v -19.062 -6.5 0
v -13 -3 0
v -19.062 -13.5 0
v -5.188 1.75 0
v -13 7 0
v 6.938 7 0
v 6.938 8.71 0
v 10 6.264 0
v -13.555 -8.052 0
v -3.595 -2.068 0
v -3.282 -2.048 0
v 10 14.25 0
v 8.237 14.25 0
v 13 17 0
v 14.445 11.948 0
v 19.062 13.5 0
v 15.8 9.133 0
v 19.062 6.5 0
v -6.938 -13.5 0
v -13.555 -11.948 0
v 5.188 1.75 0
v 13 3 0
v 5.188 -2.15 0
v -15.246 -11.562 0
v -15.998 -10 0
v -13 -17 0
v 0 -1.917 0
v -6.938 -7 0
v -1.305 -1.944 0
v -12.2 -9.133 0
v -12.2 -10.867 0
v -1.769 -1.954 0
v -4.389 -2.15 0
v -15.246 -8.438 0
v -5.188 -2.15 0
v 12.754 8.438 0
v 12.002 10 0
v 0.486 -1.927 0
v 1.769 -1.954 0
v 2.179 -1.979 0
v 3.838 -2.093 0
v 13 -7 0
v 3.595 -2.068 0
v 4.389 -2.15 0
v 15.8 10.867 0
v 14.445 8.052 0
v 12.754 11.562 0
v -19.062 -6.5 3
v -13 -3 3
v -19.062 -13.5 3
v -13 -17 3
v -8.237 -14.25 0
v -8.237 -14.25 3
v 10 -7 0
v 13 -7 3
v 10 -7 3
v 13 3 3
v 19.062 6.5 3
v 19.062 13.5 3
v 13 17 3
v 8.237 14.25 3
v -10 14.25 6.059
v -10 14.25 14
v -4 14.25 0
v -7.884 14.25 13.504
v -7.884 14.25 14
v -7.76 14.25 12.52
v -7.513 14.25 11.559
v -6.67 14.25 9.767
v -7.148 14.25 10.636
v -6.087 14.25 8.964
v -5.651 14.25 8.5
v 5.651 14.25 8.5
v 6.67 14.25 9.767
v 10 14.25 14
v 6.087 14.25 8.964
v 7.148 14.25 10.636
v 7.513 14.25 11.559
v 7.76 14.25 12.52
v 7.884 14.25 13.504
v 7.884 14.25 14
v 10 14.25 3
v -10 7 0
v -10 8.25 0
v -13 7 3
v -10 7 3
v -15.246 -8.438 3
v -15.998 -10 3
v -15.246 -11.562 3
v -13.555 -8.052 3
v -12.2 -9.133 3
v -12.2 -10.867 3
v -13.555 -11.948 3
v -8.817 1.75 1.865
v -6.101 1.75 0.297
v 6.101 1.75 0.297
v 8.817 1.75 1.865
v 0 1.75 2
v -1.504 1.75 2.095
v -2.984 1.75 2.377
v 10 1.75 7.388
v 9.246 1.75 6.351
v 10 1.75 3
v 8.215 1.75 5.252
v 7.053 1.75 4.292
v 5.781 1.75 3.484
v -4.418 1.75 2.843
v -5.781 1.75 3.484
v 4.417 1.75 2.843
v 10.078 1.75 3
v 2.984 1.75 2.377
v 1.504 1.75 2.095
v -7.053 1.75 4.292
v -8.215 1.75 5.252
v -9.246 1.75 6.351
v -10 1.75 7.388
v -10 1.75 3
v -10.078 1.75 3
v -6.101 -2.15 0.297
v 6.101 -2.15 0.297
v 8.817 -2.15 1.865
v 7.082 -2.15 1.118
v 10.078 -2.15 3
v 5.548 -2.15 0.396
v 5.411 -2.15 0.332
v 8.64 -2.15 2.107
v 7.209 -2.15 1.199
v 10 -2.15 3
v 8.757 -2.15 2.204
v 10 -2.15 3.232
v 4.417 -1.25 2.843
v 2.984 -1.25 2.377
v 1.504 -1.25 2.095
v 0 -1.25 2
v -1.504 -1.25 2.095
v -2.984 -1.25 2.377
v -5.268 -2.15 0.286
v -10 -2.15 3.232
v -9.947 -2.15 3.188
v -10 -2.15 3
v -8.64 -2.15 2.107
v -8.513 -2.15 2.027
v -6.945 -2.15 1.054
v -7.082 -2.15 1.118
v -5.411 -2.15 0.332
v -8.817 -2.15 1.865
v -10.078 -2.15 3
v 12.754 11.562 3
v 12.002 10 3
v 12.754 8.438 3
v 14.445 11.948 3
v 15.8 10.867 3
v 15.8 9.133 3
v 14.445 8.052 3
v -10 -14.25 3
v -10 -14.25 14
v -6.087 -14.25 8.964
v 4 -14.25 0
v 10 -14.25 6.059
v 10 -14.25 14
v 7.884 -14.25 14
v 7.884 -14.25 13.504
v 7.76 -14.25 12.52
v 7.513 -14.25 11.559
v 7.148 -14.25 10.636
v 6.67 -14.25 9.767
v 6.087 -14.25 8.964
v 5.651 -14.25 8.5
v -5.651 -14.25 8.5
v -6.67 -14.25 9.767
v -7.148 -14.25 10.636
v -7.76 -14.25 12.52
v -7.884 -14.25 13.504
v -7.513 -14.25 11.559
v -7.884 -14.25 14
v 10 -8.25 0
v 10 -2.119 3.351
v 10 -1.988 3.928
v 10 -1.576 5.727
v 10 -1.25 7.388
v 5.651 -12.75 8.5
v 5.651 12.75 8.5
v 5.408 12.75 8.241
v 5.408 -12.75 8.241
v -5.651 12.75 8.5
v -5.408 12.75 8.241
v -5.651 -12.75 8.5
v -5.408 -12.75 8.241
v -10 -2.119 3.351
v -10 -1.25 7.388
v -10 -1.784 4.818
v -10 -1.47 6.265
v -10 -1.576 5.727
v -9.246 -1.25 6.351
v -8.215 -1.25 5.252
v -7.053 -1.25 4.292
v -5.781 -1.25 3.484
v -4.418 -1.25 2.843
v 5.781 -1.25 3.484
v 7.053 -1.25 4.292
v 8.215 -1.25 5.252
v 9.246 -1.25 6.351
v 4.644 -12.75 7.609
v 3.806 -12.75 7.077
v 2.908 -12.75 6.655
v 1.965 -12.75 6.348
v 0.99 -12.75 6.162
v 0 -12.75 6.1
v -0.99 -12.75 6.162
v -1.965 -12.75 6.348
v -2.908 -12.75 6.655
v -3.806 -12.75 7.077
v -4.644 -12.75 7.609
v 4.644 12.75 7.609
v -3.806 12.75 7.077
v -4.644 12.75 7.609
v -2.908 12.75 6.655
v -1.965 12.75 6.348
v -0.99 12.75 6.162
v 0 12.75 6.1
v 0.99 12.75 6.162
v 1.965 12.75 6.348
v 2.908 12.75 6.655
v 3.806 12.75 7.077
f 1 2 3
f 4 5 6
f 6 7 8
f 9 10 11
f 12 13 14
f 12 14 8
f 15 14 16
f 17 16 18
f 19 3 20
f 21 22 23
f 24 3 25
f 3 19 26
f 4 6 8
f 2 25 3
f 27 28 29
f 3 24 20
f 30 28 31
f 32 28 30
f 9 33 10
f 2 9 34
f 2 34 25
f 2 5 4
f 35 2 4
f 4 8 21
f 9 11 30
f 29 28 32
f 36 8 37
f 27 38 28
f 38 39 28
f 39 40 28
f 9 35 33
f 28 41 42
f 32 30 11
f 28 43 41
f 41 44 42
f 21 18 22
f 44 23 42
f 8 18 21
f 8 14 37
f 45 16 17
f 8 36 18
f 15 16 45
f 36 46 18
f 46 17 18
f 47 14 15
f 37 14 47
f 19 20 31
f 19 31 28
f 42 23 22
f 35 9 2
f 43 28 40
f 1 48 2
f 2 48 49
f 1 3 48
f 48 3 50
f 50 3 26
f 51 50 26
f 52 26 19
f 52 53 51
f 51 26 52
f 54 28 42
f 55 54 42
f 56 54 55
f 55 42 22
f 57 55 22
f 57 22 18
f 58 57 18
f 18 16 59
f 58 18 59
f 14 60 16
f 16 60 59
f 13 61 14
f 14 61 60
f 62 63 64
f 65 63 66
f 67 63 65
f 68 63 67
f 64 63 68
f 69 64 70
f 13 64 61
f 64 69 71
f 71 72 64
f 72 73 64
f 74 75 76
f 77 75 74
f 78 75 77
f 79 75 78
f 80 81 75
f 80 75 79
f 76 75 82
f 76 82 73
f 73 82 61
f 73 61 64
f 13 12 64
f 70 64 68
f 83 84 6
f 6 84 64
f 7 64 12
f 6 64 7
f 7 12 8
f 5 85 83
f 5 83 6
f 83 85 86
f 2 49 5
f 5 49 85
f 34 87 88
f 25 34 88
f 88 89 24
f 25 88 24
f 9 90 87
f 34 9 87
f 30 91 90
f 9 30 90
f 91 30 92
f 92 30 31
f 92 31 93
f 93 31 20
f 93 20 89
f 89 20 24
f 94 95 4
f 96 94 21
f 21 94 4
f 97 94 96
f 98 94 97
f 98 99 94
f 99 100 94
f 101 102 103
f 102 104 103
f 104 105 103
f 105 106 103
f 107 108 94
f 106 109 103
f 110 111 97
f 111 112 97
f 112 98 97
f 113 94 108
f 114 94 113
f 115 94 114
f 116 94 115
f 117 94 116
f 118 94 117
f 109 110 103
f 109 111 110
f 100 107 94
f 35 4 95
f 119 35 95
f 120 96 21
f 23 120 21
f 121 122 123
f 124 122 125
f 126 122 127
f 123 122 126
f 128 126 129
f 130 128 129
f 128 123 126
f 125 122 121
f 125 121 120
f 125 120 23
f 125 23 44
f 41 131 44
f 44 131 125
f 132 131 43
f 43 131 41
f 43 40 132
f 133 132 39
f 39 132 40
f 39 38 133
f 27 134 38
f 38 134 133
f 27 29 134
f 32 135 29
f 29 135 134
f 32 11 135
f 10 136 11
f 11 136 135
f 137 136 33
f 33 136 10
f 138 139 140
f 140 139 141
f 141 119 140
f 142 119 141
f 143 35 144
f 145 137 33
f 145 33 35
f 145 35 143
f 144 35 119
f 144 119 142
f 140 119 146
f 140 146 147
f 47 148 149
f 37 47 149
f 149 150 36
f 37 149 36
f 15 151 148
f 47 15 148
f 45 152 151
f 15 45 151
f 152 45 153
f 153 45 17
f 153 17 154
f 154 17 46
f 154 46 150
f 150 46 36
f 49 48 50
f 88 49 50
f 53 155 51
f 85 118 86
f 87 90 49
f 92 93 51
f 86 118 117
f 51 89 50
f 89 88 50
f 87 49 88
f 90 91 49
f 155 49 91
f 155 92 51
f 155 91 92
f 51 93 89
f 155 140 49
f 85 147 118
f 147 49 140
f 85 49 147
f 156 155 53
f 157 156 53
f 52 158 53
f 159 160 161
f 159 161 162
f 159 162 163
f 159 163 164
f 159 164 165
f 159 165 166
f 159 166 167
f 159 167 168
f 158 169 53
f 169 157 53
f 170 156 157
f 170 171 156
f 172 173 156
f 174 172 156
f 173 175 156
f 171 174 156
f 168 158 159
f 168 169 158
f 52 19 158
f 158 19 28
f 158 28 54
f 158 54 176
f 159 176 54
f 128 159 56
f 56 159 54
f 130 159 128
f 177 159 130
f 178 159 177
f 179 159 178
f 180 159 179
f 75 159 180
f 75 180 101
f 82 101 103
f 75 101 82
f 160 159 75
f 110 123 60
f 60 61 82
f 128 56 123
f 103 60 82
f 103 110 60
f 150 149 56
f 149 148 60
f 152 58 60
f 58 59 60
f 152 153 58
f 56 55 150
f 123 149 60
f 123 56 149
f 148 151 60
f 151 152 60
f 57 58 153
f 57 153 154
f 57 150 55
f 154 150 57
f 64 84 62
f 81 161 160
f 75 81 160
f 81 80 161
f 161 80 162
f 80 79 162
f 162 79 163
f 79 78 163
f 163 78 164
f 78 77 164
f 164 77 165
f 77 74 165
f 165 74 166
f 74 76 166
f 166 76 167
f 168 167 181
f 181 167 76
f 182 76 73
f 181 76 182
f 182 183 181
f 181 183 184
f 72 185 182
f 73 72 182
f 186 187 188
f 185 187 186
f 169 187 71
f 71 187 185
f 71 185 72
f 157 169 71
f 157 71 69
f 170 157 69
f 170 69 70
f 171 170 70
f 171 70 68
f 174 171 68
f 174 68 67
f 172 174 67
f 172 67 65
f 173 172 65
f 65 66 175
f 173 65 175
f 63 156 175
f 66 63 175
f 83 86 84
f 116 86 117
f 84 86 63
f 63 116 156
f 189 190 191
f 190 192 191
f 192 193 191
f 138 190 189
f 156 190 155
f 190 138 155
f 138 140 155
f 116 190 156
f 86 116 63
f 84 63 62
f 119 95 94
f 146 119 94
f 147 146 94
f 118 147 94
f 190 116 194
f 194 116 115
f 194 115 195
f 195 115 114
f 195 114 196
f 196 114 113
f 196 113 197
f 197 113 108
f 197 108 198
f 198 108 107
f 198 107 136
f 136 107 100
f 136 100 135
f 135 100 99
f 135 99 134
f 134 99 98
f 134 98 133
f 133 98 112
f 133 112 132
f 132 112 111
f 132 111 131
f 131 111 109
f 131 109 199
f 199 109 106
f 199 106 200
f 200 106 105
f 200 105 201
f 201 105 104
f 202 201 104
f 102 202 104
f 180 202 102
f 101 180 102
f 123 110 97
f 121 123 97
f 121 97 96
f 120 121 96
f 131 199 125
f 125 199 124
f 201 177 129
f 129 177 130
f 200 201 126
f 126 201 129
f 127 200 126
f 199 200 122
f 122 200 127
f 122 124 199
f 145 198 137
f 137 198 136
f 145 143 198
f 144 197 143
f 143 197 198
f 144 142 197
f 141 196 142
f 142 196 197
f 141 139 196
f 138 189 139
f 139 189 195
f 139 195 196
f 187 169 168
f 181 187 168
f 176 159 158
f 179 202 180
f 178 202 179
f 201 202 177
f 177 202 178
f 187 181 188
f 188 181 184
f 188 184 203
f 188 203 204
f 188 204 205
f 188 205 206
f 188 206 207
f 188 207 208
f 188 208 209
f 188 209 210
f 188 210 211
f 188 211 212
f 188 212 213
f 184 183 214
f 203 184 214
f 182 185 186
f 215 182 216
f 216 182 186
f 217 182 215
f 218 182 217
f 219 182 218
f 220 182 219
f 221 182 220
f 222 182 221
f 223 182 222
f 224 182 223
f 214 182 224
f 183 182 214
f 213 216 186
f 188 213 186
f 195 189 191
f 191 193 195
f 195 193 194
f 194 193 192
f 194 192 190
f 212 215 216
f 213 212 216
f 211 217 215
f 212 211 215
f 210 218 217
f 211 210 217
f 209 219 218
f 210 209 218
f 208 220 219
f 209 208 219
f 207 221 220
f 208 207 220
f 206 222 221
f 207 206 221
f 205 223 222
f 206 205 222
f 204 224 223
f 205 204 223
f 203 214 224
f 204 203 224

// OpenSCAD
// file: functions.scad
// Mendel Dynamics
// Functions used in many files
// GNU GPL v3
// Emili Sapena 
// emili@bcndynamics.com
// bcndynamics.com
// http://wiki-es.bcndynamics.com/Mendel_Dynamics
// http://github.com/djemili/MendelDynamics
// http://www.reprap.org/wiki/Mendel_Dynamics

// Some functions from:
// Prusa Mendel
// GNU GPL v3
// Josef Průša
// josefprusa@me.com
// prusadjs.cz
// http://www.reprap.org/wiki/Prusa_Mendel
// http://github.com/prusajr/PrusaMendel


module nut(d,h,horizontal=true){
cornerdiameter =  (d / 2) / cos (180 / 6);
cylinder(h = h, r = cornerdiameter, $fn = 6);
if(horizontal){
for(i = [1:6]){
	rotate([0,0,60*i]) translate([-cornerdiameter-0.2,0,0]) rotate([0,0,-45]) cube(size = [2,2,h]);
}}
}

// Based on nophead research
module polyhole(d,h) {
    n = max(round(2 * d),3);
    rotate([0,0,180])
        cylinder(h = h, r = (d / 2) / cos (180 / n), $fn = n);
}




module roundcorner(diameter){
	difference(){
		cube(size = [diameter,diameter,99], center = false);
		translate(v = [diameter, diameter, 0]) cylinder(h = 100, r=diameter, center=true);
	}
}


module roundcorner(diameter){
	difference(){
		cube(size = [diameter,diameter,99], center = false);
		translate(v = [diameter, diameter, 0]) cylinder(h = 100, r=diameter, center=true, $fn=10);//no augmentar
	}
}

// This module creates the shape that needs to be substracted from a cube to make its corners rounded.
module MycreateMeniscus(h,radius,angle) 
difference(){
	translate([radius/2+0.1+30/2,radius/2+0.1,0]){
		cube([radius+0.2+30,radius+0.1+radius*sin(angle),h+0.2],center=true);         
	}
	
	cylinder(h=h+0.2,r=radius,$fn = 100,center=true);
}

//     __          __ 
//    |__|   ()   |__|
//
module Connection(sep=40)
union() {
	translate([-sep/2,0,(grosor+2)/2]) cube([10+0.1,grosor+0.1,grosor+2], center=true);
	translate([sep/2,0,(grosor+2)/2]) cube([10+0.1,grosor+0.1,grosor+2], center=true);
	cylinder(h=grosor+2, r=m3_diameter/2, $fn=fnfn);
}

// without m3 hole
//     __          __
//    |__|        |__|
//

module ConnectionNC(sep=40)
union() {
	translate([-sep/2,0,(grosor+2)/2]) cube([10+0.1,grosor+0.1,grosor+2], center=true);
	translate([sep/2,0,(grosor+2)/2]) cube([10+0.1,grosor+0.1,grosor+2], center=true);
}

//     __          __ 
//  __|  |________|  |__
//           
module ConnectionOut(sep=40)
union() {
	translate([-sep/2,grosor/2,grosor/2]) cube([10,grosor,grosor], center=true);
	translate([sep/2,grosor/2,grosor/2]) cube([10,grosor,grosor], center=true);
}

//     __          __ 
//  __|  |___  ___|  |__
//           ||           
//           ++

module BoltHole(canal=true)
union() {
	if (canal) {
		translate([0,-5,(grosor+2)/2-1]) cube([m3_diameter,21,grosor+2], center=true);
	}
	translate([0,-10,(grosor+2)/2-1]) cube([m3_nut_diameter_horizontal,3,grosor+2], center=true);
}


module M3hole(hex=0) {
	
	if (hex) {
		cylinder(h=grosor+2,r=m3_nut_diameter_horizontal/2+0.5, $fn=6);
	}
	else {
		cylinder(h=grosor+2,r=m3_diameter/2, $fn=fnfn);
	}
}

//Hole for Bearing 608
module b608(h=8)
{
	translate([0,0,h/2]) cylinder(r=hole_for_608/2,h=h,center=true,$fn=fnfn);
}


module M8hole(h=8)
{
	translate([0,0,h/2]) cylinder(r=m8_hole/2,h=h,center=true,$fn=fnfn);
}

module motor()
{
	union() {
		cube([l_motor,a_motor,a_motor]);
		translate([-20,a_motor/2,a_motor/2])
		rotate([0,90,0]) cylinder(h=20,r=2.5);
	}
}

// nema 17 holes
module MotorHoles()
{
	translate([motor_h_sep/2, motor_h_sep/2, 0]) M3hole();
	translate([motor_h_sep/2, -motor_h_sep/2, 0]) M3hole();
	translate([-motor_h_sep/2, motor_h_sep/2, 0]) M3hole();
	translate([-motor_h_sep/2, -motor_h_sep/2, 0]) M3hole();
	translate(v=[0,0,0]) cylinder(r=26/2, h=grosor+2, $fn=fnfn);
}
// file: constants.scad
// Mendel Dynamics
// Constant values used in many files
// GNU GPL v3
// Emili Sapena 
// emili@bcndynamics.com
// bcndynamics.com
// http://wiki-es.bcndynamics.com/Mendel_Dynamics
// http://github.com/djemili/MendelDynamics
// http://www.reprap.org/wiki/Mendel_Dynamics

//DEBUG
//fnfn=10;

//RENDER
fnfn=60;


// Plates' thickness
grosor=5;

threaded_rod_diameter = 8.7;
m3_diameter = 3.6;
m3_nut_diameter = 5.3;
m3_nut_diameter_horizontal = 6.1;

m8_clearance_hole=8.8;
m8_hole=8.4;
hole_for_608=22.3;
608_diameter=22;
pulley_diameter=10; //TODO

hole_separation=58.5; //from Prusa's frame vertex
xbars_separation=50;
hotend_hole_sep=30;
xventilador=10; //TODO
l_motor=50; // 47 mesurat per mi! deixem 50 per si hi ha motors mes llargs
a_motor=42.4; //mesurat per mi!
motor_h_sep=31;

pla_diam=3;
teflon_diam=16.3;

bushing_holes_dist=28;
rod_clamp_holes_dist=15;
belt_clamp_holes_dist=18;

//Recheck these values:
ramps_holes_a=48;
ramps_holes_b=82.5;
ramps_holes_c=75;

lme8uu=false;
lm8uu_diameter=(lme8uu==true) ? 16 : 15;
lm8uu_length=(lme8uu==true) ? 25 : 24;
lm8uu_radius = lm8uu_diameter / 2;
block_height = 2*lm8uu_length+17;

//==================================


// Triangles
marge_llarg=75;
marge_curt=10;
lateral=320+marge_llarg*2;
altura=lateral*sin(60);

//y_off=7*8.65;
y_off=60;
ample_z=100;
marge_z=20;
offset_z=20; //eleva inici del forat eix z
altura_z=(lateral-(ample_z/2+marge_z)/cos(60))*sin(60)-marge_z-offset_z;


// Lamines base i frontal

llarg_base=234;
curt_base=80;
llarg_front=llarg_base+40;

// Safata
distC_safata=210;
distV_safata=140;
distB_safata=40;
dist_belt=18;
ample_safata=220;
llarg_safata=220;
dist_bushing=28;

ample_total=410; //distancia entre centres de varilles llises Z
// z_motor
llarg_zm=(ample_total-llarg_base-grosor*2)/2 + 20;
//llarg_zm=100;
ample_zm=hole_separation+m8_clearance_hole*2+10;
zdist=30;

//extruder
x_motor_ex=xventilador+10+hotend_hole_sep/2+10;
y_motor_ex=10;
hotend_rotation=90; 
llarg_ex=xventilador+hotend_hole_sep+l_motor+30;
ample_ex=xbars_separation+m8_clearance_hole*2+10;

//xend
ample_xe=ample_ex;
llarg_xe=zdist+40;


//y motor
llarg_ym=hole_separation+threaded_rod_diameter+20;

//alt
ample_ym=a_motor+10;

//x carriage
llarg_xc=105;
ample_xc=xbars_separation+bushing_holes_dist+10;
// file: metric.scad
// PRUSA iteration3
// Default metric sizes
// GNU GPL v3
// Josef Průša <josefprusa@me.com>
// http://www.reprap.org/wiki/Prusa_Mendel
// http://github.com/prusajr/PrusaMendel

// DONT CHANGE THIS FILE! ALTER VALUES IN CONFIGURATION.SCAD INSTEAD

// RODS

threaded_rod_diameter = 8.7;
threaded_rod_diameter_horizontal = 9;
smooth_bar_diameter = 8;
smooth_bar_diameter_horizontal = 8.5;
smooth_big_bar_diameter_horizontal = 10.8;

// Nuts and bolts


m8_diameter = 9;
//iso4032 says Width across corners = 14.38
m8_nut_diameter = 14.1;

m4_diameter = 4.7;
//iso4032 says 7.66
m4_nut_diameter = 7.6;
m4_nut_diameter_horizontal = 8.15;

m3_diameter = 3.4;
//iso4032 says 6.01
m3_nut_diameter = 5.3;
m3_nut_diameter_horizontal = 6.8;
m3_washer_diameter = 6.9;

// Motors

motor_shaft = 5.5;
// file: configuration.scad
// PRUSA Mendel  
// Configuration file
// GNU GPL v3
// Josef Průša
// josefprusa@me.com
// prusadjs.cz
// http://www.reprap.org/wiki/Prusa_Mendel
// http://github.com/prusajr/PrusaMendel

// PLEASE SELECT ONE OF THE CONFIGURATIONS BELOW
// BY UN-COMMENTING IT

// Uncomment for metric settings
// METRIC METRIC METRIC METRIC METRIC METRIC METRIC METRIC 

include <metric.scad>;
include <constants.scad>

// CUSTOM CUSTOM CUSTOM CUSTOM CUSTOM CUSTOM CUSTOM CUSTOM CUSTOM

thin_wall = 3;


// Linear bearing version
linear = false;
// set false for LM-8UU, true for LM-E-8UU (ignore if linear is set to false)
lme8uu = false;



// CHANGE ONLY THE STUFF YOU KNOW
// IT WILL REPLACE DEFAULT SETTING

// RODS

// threaded_rod_diameter = 0;
// threaded_rod_diameter_horizontal = 0;
// smooth_bar_diameter = 0;
// smooth_bar_diameter_horizontal = 0;

// Nuts and bolts

// m8_diameter = 0;
// m8_nut_diameter = 0;

// m4_diameter = 0;
// m4_nut_diameter = 0;

// m3_diameter = 0;
// m3_nut_diameter = 0;

// Bushing holder

// bushing_core_diameter = smooth_bar_diameter;
// bushing_material_thickness = 0;


///counted stuff
m3_nut_diameter_bigger = ((m3_nut_diameter  / 2) / cos (180 / 6))*2;

// functions 
include <functions.scad>
// main file
// Mendel Dynamics
// X bushing B
// GNU GPL v3
// Emili Sapena 
// emili@bcndynamics.com
// bcndynamics.com
// http://wiki-es.bcndynamics.com/Mendel_Dynamics
// http://github.com/djemili/MendelDynamics
// http://www.reprap.org/wiki/Mendel_Dynamics


include <configuration.scad>
include <bushing.scad>

/**
 * @id x-bushing-b
 * @name X bushing B
 * @category Printed
 * @using 4 m3washer
 * @using 2 m3x15xhex
 * @using 2 m3nut
 */

snap_in_mount = false;

y_linear_bearings_alt(true);
